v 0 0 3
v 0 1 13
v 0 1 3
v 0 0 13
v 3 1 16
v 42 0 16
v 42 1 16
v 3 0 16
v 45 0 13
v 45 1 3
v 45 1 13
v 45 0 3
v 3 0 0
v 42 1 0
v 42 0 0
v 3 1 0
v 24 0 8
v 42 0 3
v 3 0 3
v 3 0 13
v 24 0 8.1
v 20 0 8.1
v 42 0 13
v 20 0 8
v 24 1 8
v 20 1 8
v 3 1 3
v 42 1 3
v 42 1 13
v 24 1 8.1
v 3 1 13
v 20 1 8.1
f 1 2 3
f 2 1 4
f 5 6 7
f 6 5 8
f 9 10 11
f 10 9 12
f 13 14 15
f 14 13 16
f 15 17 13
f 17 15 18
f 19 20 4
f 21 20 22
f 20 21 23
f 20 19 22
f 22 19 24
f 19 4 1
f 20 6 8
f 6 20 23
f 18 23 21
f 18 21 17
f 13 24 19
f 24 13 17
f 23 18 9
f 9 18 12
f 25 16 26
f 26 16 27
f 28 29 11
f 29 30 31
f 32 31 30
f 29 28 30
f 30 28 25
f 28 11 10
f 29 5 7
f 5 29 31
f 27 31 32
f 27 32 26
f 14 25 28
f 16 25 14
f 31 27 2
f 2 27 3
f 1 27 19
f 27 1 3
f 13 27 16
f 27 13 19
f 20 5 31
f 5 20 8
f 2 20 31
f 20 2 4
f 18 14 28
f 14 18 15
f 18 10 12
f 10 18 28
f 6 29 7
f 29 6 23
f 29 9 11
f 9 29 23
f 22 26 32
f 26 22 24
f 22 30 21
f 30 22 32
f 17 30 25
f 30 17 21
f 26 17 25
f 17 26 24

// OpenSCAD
difference()
{
color("red")translate([0,0,0])cube([45,1,16]);

//corners
color("yellow")translate([-1,-1,-1])cube([4,3,4]);
color("yellow")translate([-1,-1,13])cube([4,3,4]);
color("yellow")translate([42,-1,-1])cube([4,3,4]);
color("yellow")translate([42,-1,13])cube([4,3,4]);
color("white")translate([20,-1,8])cube([4,3,0.1]);
}
